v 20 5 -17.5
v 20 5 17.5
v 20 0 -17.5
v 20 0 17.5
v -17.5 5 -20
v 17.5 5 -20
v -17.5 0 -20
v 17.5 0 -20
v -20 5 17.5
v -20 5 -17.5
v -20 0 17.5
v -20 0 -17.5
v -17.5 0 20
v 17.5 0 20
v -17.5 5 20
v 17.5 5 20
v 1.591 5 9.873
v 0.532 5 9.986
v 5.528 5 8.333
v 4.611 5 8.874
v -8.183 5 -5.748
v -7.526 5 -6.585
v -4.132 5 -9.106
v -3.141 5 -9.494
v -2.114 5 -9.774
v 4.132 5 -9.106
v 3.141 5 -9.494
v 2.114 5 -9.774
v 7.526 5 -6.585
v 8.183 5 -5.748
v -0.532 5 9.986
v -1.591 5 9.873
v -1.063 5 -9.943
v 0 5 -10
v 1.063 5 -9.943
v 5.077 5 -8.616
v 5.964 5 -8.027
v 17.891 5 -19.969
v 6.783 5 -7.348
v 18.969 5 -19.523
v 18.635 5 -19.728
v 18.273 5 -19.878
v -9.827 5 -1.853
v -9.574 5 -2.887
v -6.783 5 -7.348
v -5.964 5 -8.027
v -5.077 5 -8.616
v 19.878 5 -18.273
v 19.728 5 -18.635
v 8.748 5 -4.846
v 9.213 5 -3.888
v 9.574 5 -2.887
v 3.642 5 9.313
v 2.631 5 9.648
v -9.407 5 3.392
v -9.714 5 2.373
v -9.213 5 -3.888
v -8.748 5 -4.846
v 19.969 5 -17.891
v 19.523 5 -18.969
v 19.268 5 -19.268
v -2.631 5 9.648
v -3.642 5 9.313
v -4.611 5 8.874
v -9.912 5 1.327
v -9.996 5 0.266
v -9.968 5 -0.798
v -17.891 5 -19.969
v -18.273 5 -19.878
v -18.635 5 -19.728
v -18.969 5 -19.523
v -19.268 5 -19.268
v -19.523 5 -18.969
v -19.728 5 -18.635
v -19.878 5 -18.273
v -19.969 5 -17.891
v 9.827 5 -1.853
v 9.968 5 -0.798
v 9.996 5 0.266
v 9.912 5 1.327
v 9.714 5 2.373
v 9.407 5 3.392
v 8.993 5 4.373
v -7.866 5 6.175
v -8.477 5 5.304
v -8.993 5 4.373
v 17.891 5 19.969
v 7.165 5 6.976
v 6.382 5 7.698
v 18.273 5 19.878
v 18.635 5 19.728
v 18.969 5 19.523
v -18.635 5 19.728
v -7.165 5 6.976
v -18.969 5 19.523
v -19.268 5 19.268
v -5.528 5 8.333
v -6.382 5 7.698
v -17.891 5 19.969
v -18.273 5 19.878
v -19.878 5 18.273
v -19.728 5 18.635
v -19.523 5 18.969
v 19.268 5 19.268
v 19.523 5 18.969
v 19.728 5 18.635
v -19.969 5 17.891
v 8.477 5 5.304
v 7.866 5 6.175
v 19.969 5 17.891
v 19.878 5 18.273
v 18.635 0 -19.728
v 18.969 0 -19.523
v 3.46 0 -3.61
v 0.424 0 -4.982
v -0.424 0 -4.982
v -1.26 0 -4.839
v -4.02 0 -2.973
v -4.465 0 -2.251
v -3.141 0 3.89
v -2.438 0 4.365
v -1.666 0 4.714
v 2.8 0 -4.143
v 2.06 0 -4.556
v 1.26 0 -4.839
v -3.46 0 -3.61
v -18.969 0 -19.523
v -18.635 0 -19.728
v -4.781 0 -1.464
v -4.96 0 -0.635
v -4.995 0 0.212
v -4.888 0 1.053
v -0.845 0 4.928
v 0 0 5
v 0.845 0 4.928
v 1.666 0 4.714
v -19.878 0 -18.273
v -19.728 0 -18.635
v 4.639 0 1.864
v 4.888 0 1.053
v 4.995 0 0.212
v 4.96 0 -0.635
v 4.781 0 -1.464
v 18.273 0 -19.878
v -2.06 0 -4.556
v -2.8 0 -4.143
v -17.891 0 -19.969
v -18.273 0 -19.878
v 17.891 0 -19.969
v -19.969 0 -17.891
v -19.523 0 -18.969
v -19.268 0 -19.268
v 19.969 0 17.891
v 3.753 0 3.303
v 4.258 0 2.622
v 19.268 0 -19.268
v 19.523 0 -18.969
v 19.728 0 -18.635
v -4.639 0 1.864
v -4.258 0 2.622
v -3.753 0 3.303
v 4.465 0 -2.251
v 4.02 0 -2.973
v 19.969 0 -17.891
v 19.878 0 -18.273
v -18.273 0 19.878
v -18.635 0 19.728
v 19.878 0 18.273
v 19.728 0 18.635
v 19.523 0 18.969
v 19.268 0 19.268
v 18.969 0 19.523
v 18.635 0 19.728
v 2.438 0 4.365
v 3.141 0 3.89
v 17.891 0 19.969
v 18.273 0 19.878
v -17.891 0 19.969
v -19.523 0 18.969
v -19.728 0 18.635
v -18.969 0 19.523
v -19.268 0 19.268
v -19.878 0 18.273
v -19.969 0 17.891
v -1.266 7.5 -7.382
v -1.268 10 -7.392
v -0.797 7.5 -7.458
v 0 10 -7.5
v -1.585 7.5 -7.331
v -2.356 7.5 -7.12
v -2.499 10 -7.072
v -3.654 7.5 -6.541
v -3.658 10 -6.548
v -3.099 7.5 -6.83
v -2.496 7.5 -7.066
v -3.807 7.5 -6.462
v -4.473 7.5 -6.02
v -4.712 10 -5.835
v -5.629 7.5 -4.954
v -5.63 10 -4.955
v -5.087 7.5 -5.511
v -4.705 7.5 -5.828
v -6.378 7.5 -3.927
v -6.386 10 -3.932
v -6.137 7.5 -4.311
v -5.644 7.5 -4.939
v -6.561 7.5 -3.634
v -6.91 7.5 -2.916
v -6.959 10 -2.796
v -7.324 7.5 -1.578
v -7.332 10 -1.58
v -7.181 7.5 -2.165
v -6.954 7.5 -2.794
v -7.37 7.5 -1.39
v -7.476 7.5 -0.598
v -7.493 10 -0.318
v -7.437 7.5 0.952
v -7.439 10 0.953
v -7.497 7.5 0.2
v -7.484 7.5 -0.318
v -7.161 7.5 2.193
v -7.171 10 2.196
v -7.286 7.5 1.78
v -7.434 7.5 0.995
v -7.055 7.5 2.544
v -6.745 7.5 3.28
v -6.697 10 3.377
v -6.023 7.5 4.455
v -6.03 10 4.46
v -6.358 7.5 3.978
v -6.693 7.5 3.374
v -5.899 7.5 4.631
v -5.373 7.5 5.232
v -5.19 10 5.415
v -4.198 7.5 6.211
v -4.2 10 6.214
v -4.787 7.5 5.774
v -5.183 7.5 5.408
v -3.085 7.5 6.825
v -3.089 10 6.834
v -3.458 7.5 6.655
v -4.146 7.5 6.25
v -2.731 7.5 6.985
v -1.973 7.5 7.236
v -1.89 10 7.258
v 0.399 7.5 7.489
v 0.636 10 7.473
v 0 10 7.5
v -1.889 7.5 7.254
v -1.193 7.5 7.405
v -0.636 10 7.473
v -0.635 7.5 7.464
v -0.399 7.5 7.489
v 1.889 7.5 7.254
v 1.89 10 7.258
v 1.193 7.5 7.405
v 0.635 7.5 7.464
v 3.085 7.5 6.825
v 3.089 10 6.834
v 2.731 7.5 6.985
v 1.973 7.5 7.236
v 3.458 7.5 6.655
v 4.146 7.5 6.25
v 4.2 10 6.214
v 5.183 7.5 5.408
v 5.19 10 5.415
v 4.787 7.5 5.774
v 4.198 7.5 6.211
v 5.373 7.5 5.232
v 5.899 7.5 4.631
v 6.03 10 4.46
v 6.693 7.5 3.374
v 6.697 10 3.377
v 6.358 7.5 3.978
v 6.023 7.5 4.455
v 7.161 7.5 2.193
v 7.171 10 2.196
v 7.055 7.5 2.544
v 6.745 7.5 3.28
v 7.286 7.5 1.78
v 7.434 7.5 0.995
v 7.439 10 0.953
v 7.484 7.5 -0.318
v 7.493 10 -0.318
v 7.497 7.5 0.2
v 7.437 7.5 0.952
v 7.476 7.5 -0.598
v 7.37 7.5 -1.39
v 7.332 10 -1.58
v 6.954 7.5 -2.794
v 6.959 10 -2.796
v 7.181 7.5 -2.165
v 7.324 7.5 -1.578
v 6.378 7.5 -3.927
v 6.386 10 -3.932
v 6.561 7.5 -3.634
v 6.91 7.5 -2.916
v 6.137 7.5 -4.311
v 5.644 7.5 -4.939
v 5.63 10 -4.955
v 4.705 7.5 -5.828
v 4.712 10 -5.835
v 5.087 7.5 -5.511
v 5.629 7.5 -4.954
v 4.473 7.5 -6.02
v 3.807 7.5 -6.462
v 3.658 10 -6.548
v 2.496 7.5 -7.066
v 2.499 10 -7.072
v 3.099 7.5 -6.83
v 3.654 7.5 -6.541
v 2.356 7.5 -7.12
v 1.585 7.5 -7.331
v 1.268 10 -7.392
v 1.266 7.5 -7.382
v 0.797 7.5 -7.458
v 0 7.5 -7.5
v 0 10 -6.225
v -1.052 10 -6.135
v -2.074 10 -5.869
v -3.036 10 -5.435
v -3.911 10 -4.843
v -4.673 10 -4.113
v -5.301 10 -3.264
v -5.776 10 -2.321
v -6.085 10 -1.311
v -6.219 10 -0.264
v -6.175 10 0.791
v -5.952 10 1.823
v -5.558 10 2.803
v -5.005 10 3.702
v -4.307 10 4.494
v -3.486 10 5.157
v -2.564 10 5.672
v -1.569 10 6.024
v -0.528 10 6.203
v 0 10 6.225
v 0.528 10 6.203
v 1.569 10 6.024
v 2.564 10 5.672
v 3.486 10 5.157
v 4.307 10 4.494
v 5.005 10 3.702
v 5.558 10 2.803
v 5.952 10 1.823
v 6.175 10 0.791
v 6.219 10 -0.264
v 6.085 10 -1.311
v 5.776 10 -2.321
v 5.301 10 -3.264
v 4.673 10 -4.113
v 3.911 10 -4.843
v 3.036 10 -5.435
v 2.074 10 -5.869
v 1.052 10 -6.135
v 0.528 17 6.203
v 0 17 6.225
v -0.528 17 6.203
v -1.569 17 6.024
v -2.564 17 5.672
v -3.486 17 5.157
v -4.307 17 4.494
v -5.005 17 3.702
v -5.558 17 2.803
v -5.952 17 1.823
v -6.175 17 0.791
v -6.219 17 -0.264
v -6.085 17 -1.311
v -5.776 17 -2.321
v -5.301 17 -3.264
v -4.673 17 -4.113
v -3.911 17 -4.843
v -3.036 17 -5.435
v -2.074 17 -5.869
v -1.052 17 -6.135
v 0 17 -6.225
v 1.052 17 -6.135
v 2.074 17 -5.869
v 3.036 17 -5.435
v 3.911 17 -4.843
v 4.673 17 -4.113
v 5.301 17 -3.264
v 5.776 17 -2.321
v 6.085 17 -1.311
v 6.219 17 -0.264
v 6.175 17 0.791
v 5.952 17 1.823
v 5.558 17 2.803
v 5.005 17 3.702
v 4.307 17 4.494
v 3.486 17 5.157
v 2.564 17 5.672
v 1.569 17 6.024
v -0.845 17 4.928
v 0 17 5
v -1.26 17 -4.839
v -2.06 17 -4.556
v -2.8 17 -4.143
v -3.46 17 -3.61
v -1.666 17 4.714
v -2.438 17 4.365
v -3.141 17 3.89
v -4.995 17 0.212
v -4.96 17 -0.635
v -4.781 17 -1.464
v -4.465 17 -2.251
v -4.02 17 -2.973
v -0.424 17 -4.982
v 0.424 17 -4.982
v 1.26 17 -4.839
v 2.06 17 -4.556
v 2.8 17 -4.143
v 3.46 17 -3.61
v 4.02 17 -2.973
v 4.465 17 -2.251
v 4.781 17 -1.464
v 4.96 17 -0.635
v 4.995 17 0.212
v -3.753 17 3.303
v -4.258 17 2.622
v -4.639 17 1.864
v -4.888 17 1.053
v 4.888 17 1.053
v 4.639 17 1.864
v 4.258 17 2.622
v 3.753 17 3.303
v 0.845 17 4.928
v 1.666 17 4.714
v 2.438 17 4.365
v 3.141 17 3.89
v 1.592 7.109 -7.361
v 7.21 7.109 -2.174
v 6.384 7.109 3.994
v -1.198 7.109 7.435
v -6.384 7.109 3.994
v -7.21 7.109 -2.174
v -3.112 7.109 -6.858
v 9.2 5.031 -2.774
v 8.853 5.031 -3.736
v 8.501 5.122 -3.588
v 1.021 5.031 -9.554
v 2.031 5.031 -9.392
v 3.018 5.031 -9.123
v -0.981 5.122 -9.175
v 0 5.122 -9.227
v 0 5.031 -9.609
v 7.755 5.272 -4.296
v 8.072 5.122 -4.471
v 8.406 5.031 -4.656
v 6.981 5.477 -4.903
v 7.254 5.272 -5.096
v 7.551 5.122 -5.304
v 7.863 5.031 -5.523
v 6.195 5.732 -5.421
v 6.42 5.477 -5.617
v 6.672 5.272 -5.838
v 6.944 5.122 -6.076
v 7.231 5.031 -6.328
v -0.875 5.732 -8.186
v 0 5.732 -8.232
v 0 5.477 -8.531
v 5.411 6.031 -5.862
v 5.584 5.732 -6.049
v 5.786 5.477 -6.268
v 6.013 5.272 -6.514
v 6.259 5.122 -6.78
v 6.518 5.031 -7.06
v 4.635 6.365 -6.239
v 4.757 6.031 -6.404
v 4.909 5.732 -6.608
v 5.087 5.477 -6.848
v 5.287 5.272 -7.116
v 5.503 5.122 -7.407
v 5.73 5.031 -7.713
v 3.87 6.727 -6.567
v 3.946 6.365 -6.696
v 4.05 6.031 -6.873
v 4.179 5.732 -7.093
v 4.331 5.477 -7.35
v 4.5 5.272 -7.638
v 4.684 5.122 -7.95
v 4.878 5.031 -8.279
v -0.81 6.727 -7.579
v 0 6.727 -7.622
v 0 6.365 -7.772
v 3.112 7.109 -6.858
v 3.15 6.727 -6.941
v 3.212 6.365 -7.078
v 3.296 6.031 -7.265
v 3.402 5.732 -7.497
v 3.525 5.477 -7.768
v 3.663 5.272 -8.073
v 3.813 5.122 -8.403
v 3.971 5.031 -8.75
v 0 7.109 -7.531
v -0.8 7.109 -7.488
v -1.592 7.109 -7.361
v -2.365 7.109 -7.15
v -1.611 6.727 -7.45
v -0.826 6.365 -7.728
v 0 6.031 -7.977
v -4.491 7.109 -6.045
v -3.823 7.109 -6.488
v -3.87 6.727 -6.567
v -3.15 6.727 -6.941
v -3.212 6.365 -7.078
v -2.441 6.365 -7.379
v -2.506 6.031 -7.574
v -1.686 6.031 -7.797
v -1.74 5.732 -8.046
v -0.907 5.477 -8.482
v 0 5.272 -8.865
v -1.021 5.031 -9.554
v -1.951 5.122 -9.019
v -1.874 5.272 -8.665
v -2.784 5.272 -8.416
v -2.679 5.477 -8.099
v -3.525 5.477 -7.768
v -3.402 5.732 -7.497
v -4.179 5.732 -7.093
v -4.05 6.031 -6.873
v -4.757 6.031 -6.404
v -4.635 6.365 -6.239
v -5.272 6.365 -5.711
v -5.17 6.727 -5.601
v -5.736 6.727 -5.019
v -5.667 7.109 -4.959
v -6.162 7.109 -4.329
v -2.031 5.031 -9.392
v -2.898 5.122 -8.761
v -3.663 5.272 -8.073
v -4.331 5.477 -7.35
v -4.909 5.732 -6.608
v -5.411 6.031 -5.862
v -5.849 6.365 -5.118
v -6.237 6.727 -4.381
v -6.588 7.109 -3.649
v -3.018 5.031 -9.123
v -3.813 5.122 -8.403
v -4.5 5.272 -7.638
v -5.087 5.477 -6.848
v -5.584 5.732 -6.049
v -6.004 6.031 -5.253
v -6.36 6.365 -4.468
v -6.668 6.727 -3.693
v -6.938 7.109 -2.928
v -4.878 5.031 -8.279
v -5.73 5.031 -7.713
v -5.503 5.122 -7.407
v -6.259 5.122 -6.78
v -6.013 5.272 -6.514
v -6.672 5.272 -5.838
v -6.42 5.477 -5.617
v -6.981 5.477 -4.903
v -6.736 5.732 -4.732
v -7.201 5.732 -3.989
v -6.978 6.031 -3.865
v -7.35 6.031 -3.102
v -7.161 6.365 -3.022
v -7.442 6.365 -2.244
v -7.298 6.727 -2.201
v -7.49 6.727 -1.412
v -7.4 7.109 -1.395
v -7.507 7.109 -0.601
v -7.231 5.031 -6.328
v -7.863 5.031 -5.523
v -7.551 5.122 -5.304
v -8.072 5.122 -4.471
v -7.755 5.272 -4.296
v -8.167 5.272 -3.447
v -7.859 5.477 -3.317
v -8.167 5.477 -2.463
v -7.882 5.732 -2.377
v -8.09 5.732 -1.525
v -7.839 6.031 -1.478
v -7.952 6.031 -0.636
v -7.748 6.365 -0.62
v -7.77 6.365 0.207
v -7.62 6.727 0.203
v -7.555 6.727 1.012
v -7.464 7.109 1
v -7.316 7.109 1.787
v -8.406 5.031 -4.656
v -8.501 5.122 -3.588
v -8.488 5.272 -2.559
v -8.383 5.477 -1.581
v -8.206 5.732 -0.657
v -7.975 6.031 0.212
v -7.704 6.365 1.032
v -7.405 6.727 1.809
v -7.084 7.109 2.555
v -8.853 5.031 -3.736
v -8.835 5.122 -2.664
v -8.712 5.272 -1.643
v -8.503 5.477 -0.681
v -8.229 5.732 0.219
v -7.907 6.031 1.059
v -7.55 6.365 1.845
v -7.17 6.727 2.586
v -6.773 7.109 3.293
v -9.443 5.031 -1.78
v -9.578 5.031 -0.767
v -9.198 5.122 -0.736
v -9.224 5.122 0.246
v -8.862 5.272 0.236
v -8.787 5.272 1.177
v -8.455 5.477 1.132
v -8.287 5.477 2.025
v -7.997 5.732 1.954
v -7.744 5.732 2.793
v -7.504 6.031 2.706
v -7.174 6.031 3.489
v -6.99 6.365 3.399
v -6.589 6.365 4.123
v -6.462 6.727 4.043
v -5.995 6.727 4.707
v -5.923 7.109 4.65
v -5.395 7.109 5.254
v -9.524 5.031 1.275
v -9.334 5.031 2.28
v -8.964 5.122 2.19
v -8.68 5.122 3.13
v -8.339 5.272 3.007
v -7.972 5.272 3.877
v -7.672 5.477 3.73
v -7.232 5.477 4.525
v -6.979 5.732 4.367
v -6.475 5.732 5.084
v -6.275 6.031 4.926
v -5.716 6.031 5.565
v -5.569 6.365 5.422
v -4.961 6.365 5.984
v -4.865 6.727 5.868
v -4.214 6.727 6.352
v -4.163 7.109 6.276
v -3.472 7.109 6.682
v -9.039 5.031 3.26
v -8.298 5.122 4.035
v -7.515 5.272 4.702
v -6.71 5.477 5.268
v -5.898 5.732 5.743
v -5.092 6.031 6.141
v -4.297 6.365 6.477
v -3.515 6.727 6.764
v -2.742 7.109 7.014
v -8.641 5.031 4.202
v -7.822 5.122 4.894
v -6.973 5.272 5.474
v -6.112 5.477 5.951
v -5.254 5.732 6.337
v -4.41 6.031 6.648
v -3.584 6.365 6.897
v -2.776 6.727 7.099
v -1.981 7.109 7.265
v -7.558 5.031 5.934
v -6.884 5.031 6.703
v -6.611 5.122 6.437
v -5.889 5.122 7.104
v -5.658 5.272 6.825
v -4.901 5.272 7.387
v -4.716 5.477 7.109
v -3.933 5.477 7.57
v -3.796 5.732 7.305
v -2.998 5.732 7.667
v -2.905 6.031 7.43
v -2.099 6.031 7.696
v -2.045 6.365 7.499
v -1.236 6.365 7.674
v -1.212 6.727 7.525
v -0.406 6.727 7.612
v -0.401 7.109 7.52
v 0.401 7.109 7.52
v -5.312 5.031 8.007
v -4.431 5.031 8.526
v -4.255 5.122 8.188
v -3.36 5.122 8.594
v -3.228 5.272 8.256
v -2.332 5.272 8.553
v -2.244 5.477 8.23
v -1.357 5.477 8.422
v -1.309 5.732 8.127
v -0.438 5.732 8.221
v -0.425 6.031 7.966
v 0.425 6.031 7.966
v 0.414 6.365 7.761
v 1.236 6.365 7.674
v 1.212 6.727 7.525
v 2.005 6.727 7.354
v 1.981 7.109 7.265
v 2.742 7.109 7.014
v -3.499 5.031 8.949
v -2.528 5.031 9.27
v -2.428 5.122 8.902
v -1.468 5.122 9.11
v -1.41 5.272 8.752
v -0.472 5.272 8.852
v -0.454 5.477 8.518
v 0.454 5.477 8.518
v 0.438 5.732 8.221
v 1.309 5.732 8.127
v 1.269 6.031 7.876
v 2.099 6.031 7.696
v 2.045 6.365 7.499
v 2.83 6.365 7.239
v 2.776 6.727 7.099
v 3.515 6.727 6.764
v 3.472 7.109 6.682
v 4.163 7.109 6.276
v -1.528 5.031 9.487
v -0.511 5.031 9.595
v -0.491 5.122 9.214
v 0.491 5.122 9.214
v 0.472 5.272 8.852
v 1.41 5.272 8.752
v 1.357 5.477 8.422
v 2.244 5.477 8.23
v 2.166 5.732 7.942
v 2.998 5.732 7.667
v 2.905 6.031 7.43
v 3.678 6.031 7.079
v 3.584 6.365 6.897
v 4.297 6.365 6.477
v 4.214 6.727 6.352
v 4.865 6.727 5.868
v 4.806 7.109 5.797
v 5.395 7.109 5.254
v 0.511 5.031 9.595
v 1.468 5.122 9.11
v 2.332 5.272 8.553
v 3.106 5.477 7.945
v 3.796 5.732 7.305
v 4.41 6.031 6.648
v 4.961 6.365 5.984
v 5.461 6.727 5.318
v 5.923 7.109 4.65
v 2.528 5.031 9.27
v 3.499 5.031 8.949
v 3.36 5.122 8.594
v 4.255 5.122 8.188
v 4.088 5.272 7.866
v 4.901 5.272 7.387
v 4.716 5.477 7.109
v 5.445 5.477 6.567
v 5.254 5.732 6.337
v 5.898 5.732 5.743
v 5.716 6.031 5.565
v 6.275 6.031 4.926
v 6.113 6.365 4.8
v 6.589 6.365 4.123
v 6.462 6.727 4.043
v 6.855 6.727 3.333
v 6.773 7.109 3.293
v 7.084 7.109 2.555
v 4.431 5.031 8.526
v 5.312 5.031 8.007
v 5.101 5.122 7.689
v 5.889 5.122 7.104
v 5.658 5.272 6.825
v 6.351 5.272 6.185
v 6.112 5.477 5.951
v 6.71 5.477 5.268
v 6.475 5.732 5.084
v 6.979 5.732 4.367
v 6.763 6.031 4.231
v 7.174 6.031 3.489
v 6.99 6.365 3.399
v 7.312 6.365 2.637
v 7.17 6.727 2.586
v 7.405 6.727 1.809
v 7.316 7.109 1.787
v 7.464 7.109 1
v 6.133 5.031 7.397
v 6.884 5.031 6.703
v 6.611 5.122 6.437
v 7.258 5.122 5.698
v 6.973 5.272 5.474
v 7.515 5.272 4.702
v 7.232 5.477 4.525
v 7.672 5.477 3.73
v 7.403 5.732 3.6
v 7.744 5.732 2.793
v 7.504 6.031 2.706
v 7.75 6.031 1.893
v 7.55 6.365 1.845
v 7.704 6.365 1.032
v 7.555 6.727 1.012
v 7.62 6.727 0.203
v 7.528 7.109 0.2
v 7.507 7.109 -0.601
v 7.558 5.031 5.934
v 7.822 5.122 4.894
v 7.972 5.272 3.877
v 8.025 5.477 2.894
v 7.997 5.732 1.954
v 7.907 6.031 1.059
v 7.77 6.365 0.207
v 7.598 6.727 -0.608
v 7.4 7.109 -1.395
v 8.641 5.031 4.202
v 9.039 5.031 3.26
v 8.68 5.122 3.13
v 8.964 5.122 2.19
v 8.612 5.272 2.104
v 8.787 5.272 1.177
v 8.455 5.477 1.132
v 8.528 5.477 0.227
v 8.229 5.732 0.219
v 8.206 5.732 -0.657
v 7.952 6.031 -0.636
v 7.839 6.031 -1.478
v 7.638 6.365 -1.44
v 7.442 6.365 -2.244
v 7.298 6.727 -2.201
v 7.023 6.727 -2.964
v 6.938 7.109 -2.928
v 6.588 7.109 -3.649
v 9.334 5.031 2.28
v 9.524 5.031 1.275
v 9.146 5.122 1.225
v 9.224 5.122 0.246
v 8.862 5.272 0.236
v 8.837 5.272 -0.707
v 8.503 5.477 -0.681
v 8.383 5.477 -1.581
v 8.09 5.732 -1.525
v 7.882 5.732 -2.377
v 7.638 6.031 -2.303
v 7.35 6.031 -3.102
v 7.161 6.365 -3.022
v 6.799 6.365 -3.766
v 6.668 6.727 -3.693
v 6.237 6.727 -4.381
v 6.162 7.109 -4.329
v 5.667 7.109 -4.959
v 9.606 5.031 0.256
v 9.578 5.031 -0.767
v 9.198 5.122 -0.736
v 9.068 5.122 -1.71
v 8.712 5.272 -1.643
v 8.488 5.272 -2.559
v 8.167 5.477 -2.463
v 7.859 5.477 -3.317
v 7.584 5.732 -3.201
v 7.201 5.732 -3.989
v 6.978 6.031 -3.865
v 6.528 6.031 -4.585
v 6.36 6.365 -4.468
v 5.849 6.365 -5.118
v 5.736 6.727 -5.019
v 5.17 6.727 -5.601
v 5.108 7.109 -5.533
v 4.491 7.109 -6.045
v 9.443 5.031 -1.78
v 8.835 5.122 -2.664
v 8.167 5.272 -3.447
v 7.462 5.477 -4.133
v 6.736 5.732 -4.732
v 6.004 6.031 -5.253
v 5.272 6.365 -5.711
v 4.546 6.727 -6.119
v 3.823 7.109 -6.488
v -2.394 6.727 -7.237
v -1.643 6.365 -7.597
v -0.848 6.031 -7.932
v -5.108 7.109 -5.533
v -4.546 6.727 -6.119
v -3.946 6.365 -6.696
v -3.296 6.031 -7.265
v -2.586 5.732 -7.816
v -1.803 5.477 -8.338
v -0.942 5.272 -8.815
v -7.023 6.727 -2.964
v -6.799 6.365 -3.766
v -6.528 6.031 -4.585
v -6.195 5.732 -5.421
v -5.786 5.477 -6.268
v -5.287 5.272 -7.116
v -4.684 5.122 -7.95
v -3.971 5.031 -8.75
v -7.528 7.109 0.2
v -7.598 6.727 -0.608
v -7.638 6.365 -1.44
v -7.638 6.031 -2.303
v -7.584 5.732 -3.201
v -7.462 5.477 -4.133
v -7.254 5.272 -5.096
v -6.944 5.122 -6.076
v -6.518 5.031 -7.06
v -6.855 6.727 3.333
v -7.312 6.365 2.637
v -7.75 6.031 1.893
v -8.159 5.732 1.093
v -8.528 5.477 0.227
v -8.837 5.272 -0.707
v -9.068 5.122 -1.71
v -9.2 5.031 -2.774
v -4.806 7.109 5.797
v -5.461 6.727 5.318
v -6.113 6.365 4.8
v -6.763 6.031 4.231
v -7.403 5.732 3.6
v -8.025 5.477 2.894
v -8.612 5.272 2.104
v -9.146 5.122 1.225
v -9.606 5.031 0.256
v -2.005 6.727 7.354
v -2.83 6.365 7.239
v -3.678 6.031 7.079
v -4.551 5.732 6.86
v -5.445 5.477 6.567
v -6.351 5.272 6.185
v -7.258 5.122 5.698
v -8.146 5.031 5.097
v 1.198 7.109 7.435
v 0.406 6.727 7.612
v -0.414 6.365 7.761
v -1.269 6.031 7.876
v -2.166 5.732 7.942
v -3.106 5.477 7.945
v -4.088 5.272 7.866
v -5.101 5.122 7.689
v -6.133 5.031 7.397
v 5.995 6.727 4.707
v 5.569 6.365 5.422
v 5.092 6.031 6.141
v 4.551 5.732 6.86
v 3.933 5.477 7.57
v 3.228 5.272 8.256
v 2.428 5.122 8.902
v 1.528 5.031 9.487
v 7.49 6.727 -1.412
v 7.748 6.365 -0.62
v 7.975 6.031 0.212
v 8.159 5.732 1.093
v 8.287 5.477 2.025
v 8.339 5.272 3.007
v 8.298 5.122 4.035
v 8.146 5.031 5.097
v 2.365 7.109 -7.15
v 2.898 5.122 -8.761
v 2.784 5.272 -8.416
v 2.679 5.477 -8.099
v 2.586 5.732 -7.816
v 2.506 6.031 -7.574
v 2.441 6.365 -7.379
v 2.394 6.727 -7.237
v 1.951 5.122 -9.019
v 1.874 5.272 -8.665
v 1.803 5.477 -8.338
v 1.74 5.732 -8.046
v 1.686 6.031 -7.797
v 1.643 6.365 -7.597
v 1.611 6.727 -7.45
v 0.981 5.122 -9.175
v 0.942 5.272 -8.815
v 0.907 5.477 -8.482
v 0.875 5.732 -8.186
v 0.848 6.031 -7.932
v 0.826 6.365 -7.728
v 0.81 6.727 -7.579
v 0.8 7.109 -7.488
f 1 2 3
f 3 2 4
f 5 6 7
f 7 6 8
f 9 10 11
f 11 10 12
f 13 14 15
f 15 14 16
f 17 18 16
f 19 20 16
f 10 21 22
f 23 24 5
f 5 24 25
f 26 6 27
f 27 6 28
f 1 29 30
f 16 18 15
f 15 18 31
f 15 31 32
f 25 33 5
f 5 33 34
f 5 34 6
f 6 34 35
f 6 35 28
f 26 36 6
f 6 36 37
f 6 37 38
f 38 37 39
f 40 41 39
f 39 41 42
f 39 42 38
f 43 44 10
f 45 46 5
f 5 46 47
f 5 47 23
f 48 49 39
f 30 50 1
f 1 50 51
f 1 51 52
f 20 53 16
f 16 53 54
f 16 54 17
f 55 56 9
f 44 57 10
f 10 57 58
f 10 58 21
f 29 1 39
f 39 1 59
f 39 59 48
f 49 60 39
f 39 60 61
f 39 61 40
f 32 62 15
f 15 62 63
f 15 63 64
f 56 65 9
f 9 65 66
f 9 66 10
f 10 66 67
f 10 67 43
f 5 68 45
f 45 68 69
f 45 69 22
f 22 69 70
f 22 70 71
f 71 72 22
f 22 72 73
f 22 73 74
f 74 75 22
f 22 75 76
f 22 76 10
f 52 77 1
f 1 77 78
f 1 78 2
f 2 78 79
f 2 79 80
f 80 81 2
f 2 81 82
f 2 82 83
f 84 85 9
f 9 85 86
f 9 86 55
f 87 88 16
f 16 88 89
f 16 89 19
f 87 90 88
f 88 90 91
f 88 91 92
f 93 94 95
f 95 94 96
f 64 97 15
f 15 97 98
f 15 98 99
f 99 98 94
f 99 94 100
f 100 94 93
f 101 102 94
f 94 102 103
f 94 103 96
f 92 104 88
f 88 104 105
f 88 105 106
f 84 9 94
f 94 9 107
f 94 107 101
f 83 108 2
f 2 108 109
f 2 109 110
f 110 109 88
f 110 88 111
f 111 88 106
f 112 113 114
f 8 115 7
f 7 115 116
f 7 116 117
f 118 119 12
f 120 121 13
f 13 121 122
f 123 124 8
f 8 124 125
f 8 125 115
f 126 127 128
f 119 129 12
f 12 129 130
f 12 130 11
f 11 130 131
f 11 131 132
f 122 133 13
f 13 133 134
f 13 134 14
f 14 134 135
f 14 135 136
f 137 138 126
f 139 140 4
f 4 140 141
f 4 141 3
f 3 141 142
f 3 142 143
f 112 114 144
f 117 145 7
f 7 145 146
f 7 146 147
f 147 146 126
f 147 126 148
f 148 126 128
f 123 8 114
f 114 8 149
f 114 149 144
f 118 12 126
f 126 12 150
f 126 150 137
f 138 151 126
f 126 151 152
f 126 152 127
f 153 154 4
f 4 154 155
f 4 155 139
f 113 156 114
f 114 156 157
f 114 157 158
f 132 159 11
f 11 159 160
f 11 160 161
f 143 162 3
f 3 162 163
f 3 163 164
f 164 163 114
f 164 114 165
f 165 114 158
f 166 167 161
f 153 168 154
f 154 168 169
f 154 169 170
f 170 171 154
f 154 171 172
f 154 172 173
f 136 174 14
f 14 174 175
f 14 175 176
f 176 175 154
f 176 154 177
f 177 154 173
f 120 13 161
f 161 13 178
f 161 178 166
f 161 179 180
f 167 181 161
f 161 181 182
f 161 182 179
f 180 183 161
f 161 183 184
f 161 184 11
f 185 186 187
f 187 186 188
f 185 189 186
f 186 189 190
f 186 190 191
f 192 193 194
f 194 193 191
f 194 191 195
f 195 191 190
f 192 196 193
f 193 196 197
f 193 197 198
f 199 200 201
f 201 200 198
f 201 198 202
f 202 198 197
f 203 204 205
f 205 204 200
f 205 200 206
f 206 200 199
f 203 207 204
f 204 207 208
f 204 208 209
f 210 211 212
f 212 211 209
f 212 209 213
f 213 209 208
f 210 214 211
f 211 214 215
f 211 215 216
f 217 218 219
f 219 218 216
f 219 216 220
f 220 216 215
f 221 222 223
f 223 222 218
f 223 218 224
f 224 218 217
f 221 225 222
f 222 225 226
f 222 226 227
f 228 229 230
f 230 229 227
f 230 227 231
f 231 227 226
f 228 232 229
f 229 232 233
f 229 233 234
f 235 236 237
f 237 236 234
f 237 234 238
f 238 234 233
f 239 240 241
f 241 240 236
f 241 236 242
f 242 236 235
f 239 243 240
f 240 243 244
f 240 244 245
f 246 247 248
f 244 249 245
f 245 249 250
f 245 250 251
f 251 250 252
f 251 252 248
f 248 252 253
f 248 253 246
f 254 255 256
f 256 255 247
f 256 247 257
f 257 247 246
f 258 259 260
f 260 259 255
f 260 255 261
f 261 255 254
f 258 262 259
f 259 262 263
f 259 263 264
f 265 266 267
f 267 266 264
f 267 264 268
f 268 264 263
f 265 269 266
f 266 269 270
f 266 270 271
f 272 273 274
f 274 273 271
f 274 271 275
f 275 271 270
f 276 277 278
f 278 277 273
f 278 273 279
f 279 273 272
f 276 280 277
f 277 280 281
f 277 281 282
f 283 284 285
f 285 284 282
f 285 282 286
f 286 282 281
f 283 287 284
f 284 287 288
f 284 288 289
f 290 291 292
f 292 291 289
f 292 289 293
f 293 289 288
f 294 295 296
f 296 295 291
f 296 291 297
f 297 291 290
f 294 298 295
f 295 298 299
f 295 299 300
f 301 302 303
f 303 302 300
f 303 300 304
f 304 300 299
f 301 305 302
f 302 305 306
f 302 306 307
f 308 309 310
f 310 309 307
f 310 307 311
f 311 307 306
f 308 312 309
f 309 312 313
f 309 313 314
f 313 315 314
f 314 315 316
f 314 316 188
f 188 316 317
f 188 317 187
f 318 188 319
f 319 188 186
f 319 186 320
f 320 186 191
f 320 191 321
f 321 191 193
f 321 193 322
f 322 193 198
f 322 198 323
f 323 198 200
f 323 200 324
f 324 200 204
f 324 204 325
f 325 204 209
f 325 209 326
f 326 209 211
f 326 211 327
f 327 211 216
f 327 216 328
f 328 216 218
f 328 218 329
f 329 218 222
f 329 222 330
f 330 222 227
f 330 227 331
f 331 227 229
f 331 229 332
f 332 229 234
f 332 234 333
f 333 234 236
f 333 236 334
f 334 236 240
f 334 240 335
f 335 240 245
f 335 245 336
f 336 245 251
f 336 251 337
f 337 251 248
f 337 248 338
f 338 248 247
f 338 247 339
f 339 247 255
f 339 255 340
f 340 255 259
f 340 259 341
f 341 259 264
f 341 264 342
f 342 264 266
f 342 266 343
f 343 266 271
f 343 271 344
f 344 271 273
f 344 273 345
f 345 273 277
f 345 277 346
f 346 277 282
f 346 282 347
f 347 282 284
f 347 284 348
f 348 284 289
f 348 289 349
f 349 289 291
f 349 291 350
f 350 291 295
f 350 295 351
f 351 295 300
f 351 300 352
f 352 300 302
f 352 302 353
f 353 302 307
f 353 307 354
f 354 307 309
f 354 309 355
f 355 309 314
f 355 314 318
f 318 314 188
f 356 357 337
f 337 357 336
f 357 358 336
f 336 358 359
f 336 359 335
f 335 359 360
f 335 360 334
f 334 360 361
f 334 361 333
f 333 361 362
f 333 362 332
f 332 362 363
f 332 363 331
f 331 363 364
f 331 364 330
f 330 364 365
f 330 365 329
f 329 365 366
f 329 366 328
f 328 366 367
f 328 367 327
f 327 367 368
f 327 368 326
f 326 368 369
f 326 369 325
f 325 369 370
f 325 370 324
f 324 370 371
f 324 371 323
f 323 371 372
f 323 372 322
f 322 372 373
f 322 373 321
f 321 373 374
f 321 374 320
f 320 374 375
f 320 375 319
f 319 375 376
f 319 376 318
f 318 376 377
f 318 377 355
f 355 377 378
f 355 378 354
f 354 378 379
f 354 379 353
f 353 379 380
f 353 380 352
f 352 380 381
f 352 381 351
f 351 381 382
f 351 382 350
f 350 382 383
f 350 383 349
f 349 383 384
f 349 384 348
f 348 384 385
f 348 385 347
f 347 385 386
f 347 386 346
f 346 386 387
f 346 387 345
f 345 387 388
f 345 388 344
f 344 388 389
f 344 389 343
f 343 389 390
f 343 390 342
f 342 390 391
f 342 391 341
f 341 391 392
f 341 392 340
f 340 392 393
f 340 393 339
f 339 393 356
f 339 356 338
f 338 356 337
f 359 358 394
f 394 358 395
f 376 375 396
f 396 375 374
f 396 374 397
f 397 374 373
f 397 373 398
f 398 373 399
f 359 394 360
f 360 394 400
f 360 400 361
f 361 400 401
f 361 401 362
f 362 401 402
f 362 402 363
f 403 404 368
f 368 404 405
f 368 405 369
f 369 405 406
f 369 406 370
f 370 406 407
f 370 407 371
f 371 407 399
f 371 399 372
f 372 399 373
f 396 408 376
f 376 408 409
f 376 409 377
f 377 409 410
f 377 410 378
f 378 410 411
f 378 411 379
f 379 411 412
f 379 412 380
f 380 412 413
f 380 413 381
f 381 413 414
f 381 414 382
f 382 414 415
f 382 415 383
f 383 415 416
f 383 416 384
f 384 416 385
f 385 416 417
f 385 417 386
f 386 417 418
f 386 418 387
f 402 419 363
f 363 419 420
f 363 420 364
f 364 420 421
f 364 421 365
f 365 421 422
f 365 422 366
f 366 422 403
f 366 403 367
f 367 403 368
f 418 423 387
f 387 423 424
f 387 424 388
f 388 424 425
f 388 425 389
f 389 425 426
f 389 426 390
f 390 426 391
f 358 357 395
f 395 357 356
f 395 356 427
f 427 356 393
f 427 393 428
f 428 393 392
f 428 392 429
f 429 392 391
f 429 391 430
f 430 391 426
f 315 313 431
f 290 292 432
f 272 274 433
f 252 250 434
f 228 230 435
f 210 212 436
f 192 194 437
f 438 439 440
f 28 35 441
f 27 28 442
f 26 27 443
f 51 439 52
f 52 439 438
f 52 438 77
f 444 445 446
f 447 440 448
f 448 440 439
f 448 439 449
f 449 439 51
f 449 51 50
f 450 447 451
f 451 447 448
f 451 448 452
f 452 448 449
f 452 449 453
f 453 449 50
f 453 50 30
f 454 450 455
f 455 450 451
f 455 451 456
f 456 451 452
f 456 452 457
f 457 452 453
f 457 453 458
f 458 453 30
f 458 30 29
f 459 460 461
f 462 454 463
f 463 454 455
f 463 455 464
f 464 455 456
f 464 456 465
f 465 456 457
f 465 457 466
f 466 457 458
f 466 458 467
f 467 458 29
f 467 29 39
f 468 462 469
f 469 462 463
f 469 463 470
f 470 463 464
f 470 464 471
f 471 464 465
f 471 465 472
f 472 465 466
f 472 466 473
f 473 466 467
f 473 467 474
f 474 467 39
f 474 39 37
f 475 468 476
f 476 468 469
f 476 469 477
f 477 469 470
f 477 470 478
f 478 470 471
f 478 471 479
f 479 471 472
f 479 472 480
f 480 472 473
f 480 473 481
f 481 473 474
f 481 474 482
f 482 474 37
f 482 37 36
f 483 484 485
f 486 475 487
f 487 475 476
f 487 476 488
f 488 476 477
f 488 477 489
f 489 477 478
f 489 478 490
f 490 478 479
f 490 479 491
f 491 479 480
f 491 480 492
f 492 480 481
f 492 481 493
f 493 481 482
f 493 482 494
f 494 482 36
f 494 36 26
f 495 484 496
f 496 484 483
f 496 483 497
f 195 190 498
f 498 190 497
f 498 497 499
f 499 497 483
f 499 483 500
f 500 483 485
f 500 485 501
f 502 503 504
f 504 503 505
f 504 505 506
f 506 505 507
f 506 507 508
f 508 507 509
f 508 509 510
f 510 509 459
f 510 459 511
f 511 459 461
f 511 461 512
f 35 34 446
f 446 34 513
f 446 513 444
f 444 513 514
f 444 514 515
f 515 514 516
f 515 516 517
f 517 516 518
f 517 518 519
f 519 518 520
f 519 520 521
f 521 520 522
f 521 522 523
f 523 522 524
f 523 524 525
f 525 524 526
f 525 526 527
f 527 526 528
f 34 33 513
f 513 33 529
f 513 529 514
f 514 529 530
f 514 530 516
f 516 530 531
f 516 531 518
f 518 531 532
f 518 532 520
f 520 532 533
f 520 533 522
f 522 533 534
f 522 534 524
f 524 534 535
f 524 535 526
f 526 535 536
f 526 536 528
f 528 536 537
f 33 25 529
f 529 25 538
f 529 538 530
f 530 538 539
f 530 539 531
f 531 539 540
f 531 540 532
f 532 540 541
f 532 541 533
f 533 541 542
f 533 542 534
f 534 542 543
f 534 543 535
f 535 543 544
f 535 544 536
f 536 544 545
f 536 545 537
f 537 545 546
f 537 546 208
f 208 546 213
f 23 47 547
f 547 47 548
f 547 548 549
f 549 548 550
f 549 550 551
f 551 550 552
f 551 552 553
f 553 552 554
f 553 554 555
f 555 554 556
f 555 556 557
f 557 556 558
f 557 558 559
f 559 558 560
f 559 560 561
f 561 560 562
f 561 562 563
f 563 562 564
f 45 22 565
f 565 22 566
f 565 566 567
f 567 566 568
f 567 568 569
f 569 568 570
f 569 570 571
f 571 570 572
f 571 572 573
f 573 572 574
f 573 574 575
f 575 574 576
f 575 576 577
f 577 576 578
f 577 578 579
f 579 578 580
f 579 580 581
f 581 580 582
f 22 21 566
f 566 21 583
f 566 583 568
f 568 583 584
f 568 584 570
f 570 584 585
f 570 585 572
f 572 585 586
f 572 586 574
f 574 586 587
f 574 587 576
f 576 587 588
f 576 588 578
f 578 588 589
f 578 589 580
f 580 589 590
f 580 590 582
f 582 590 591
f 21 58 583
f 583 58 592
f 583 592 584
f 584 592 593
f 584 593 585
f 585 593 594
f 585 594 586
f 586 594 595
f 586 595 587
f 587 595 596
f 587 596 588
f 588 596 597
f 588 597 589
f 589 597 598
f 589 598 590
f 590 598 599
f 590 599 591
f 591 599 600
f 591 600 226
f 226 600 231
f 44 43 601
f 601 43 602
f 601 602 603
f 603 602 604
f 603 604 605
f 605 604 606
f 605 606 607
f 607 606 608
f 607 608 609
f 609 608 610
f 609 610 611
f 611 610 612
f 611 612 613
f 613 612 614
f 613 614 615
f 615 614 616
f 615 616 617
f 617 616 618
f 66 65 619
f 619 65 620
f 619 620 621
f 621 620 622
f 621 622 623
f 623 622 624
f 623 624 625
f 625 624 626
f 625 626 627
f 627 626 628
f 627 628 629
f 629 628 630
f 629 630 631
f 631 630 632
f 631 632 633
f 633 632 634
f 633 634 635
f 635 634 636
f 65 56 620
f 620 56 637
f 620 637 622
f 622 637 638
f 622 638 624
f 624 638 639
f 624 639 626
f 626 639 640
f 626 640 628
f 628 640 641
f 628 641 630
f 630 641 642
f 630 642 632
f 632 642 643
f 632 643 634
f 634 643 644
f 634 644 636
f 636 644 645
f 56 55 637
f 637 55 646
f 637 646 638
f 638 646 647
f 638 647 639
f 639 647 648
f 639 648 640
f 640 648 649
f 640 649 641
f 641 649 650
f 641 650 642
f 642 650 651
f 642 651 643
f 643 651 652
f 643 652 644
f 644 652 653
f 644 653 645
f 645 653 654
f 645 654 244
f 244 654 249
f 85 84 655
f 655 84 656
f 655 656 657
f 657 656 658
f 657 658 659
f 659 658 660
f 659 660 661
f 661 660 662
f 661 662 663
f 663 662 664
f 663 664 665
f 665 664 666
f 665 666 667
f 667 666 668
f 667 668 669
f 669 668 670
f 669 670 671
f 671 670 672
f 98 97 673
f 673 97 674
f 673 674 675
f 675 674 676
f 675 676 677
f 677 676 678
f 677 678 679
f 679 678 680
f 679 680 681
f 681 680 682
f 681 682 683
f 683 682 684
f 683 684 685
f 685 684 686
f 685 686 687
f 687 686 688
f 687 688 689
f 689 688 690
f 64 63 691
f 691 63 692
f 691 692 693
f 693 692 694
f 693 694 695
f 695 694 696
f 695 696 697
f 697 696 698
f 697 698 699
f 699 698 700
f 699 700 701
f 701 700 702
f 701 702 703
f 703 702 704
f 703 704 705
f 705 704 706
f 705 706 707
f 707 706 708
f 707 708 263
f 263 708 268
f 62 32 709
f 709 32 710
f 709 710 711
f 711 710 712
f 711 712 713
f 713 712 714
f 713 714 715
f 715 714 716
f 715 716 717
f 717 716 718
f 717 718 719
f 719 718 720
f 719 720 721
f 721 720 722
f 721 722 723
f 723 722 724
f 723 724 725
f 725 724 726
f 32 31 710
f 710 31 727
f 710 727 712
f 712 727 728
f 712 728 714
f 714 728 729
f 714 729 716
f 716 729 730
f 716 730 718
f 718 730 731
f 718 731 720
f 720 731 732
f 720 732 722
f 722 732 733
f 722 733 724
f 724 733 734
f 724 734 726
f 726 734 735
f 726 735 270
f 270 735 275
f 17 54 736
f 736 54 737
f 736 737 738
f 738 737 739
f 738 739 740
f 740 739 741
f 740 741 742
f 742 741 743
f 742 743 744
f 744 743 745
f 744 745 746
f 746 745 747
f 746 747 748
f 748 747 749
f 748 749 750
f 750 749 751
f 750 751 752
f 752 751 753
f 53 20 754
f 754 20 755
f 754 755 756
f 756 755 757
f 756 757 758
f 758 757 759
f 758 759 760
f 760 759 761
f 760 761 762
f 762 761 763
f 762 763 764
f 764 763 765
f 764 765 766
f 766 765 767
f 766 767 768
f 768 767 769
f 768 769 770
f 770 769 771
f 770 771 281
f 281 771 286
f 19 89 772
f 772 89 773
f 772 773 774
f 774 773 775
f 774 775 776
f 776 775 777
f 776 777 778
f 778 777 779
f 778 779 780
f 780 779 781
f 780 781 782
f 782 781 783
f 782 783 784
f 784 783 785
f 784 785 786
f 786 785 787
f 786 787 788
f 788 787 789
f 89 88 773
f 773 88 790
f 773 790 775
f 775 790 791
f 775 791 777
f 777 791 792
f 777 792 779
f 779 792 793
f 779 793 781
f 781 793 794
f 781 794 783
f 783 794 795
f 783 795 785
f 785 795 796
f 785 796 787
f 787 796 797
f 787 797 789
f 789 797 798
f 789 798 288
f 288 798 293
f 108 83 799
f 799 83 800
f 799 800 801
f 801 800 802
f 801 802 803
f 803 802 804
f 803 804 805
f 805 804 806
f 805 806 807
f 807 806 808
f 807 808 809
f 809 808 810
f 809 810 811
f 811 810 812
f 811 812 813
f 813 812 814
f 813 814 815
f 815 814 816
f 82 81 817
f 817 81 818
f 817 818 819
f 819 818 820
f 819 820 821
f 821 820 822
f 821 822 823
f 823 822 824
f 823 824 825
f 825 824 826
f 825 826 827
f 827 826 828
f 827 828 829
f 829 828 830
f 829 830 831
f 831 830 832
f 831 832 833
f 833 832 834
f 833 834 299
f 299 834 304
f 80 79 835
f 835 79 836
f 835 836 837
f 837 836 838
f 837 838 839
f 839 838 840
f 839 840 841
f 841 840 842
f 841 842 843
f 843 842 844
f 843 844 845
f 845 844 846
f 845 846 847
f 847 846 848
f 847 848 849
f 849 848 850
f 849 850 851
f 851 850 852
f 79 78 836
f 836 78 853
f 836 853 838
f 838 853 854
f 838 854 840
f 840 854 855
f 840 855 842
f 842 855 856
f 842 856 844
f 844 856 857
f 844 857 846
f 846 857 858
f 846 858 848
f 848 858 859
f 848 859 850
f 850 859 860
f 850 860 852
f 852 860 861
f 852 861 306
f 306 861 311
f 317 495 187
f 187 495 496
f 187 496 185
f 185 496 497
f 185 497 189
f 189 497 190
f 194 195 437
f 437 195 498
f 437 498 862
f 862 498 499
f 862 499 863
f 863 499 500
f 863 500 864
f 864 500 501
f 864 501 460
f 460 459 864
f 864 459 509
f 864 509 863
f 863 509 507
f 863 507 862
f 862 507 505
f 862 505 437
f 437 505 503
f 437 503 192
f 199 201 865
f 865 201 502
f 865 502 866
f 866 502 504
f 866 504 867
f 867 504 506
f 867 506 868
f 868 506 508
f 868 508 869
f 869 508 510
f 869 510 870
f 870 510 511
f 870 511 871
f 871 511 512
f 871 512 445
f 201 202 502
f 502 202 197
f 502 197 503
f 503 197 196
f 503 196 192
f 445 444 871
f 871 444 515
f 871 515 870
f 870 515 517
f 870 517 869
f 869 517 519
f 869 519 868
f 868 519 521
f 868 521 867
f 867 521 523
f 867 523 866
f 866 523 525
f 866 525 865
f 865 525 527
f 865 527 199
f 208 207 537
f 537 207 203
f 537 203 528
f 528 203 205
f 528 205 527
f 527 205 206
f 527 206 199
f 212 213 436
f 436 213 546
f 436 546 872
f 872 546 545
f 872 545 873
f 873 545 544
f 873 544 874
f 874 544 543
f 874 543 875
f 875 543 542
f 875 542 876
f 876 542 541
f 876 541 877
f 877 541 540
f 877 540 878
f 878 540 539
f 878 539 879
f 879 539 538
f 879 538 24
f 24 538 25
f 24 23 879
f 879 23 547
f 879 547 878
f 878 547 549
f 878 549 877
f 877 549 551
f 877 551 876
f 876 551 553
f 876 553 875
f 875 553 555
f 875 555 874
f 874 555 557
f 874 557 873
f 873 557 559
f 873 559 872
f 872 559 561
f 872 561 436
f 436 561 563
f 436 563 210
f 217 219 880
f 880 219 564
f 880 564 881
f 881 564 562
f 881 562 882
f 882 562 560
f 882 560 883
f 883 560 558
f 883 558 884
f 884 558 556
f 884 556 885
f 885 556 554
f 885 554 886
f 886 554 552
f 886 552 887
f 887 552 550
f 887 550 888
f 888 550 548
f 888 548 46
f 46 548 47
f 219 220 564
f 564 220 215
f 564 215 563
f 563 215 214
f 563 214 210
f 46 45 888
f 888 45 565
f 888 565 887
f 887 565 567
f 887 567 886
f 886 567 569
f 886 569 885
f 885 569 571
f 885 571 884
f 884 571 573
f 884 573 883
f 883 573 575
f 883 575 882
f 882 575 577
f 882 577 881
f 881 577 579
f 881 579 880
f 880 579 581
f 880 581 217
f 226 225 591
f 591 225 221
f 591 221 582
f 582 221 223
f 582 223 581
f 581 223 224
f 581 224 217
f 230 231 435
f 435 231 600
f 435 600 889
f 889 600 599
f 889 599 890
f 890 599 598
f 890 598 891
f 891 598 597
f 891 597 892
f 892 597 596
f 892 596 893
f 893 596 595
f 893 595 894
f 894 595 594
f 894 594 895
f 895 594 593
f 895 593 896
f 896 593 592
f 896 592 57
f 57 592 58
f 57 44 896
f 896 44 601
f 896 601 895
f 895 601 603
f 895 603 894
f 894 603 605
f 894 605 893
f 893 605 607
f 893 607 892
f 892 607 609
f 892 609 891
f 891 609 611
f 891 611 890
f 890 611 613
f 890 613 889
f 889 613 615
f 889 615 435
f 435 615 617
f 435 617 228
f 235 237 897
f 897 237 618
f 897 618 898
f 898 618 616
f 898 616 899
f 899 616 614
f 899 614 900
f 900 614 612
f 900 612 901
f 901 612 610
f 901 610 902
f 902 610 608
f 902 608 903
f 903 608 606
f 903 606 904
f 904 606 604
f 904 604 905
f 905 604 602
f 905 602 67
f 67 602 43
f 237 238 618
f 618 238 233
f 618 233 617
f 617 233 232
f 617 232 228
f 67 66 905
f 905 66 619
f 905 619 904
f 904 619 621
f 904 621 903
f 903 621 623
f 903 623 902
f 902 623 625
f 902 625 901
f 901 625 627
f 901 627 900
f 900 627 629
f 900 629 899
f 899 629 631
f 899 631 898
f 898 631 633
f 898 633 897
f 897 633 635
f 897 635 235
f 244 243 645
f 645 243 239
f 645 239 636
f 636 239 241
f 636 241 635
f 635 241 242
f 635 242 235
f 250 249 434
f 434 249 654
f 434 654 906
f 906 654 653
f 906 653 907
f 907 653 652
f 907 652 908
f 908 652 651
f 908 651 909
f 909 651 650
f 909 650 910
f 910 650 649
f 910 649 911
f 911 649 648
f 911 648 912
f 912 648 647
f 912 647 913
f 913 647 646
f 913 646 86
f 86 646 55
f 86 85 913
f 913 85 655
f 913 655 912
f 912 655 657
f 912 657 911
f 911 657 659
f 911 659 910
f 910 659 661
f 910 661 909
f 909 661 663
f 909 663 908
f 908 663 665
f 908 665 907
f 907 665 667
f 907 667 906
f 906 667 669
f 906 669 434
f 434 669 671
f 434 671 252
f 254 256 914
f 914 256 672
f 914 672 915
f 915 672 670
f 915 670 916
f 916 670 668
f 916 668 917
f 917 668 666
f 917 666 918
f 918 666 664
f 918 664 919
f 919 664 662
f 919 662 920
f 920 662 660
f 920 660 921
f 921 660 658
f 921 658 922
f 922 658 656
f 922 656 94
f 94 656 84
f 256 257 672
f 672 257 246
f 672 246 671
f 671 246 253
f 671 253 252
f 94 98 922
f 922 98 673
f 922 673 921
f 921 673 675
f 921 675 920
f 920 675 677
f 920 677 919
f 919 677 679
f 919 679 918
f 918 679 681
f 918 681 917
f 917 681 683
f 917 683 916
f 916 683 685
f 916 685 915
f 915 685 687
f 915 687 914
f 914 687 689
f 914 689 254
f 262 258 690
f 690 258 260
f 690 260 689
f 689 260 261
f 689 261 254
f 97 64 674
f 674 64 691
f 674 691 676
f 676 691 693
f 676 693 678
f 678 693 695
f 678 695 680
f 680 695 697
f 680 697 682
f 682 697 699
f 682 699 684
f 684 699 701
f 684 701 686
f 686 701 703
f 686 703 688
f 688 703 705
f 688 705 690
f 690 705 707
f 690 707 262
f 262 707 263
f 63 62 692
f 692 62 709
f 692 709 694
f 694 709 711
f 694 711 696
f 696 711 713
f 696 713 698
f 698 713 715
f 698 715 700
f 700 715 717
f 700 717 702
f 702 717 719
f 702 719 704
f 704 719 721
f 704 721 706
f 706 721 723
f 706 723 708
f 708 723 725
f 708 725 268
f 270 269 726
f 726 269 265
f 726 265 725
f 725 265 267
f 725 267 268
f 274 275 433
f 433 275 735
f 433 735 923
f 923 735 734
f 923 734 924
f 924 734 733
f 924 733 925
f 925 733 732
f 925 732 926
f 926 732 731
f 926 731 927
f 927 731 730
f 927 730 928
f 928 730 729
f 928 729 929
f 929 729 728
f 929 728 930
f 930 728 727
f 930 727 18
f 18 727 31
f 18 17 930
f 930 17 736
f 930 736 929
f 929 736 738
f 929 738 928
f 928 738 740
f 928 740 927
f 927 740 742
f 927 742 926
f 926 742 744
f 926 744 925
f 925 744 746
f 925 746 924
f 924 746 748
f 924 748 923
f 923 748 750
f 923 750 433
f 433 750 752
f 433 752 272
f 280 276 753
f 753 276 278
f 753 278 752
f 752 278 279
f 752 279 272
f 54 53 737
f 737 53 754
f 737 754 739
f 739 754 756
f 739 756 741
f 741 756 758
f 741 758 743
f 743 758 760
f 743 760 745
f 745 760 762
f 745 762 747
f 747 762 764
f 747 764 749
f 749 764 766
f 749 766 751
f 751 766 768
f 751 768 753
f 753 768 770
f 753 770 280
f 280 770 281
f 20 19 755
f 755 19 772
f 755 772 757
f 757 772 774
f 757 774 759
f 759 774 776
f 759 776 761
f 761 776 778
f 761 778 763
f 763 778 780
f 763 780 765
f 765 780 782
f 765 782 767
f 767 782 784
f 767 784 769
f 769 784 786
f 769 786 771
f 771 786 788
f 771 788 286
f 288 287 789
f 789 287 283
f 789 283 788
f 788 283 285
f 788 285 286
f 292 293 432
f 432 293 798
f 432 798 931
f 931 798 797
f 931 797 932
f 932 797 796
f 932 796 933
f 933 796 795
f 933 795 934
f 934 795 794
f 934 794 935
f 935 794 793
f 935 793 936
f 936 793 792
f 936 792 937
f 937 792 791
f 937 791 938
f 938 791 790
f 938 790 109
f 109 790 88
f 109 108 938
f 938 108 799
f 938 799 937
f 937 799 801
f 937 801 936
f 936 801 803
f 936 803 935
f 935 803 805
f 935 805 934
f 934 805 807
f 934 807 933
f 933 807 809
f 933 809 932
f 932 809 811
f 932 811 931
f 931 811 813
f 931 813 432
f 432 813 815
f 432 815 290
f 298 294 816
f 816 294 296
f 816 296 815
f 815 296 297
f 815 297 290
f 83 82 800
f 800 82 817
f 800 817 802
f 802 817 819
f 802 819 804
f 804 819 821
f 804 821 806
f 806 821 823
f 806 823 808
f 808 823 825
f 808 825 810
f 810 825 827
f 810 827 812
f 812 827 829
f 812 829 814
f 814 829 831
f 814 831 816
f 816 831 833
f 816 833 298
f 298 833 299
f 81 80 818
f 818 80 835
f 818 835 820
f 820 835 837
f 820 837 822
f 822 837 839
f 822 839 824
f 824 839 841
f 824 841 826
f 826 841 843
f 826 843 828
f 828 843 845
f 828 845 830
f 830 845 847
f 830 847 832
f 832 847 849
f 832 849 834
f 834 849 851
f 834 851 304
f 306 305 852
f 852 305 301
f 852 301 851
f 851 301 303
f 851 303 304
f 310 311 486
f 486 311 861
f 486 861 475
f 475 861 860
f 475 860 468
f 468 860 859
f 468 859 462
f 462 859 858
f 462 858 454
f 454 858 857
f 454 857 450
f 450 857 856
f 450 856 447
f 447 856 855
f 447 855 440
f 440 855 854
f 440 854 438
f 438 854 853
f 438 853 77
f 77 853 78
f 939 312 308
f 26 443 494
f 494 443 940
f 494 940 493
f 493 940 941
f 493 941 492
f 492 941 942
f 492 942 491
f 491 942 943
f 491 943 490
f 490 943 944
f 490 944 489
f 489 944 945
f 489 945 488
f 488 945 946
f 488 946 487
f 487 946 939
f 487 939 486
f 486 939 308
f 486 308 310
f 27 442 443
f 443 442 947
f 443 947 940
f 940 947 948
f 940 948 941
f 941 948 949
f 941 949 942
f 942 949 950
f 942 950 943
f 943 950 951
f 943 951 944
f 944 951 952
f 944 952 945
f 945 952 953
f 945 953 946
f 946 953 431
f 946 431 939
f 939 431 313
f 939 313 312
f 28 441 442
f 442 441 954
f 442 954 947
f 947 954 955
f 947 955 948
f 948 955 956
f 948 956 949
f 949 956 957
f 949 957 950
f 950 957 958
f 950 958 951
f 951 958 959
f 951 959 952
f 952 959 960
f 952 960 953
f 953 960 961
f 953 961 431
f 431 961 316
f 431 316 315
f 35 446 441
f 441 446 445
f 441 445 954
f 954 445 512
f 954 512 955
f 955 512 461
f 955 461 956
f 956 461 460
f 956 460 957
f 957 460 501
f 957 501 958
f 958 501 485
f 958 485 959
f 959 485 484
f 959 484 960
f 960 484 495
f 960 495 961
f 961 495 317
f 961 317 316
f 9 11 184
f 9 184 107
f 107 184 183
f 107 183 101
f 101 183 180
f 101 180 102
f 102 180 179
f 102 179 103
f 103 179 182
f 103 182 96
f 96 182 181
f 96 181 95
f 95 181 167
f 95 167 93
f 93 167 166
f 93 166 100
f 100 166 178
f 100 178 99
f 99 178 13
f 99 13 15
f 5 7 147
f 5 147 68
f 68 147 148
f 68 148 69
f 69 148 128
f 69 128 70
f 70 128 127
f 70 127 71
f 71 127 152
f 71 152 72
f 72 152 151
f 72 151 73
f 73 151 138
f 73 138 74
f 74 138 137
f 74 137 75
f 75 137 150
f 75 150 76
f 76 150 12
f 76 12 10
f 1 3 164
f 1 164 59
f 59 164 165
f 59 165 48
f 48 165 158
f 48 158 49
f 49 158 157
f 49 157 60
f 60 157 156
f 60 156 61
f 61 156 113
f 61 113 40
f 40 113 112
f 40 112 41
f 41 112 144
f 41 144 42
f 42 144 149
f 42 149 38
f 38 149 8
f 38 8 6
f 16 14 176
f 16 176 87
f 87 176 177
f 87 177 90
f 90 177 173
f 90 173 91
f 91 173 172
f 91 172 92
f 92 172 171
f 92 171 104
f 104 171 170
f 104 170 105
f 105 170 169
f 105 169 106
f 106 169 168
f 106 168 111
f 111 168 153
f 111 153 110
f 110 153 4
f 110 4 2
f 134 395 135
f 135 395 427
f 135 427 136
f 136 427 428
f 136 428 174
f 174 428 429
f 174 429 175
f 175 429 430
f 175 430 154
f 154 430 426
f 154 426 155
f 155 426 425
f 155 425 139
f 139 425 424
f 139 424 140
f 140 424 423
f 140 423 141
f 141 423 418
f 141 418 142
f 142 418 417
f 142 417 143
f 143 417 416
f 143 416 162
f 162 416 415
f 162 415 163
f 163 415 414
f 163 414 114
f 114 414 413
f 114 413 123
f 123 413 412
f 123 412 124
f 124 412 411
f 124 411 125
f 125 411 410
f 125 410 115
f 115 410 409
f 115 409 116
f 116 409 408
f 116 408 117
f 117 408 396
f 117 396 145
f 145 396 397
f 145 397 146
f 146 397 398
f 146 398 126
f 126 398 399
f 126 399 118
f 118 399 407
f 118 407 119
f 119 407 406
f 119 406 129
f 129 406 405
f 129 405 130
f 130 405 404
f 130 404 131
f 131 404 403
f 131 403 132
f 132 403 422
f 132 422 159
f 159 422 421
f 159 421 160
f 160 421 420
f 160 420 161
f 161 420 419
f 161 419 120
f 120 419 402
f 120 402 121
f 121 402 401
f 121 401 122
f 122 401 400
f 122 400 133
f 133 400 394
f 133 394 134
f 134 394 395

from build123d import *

# Parameters (mm, degrees)
SKETCH1_W           = 40
SKETCH1_H           = 40
BOSS_EXTRUDE1_DEPTH = 5
SKETCH2_R           = 7.5
BOSS_EXTRUDE2_DEPTH = 5
SKETCH4_R           = 6.225
BOSS_EXTRUDE3_DEPTH = 7
FILLET1_R           = 2.5
SKETCH5_R           = 5
CUT_EXTRUDE1_DEPTH  = 17


with BuildPart() as part:
    # Sketch1 → Boss-Extrude1 (new body)
    with BuildSketch(Plane(origin=(0, 0, 0), x_dir=(1, 0, 0), z_dir=(0, 1, 0))):
        Rectangle(SKETCH1_W, SKETCH1_H)
    extrude(amount=BOSS_EXTRUDE1_DEPTH)

    # Sketch2 → Boss-Extrude2 (add)
    with BuildSketch(Plane(origin=(0, 5, 0), x_dir=(1, 0, 0), z_dir=(0, 1, 0))):
        with Locations(Location((0, 0, 0), (0, 0, 270))):
            Circle(SKETCH2_R)
    extrude(amount=BOSS_EXTRUDE2_DEPTH)

    # Sketch4 → Boss-Extrude3 (add)
    with BuildSketch(Plane(origin=(0, 10, 0), x_dir=(1, 0, 0), z_dir=(0, 1, 0))):
        with Locations(Location((0, 0, 0), (0, 0, 270))):
            Circle(SKETCH4_R)
    extrude(amount=BOSS_EXTRUDE3_DEPTH)

    # Fillet1
    fillet1_edges = [part.edges().sort_by_distance(p)[0] for p in [
        (0, 5, -7.5),
        (20, 2.5, 20),
        (-20, 2.5, 20),
        (-20, 2.5, -20),
        (20, 2.5, -20),
    ]]
    fillet(fillet1_edges, radius=FILLET1_R)

    # Sketch5 → Cut-Extrude1 (cut)
    with BuildSketch(Plane(origin=(0, 17, 0), x_dir=(1, 0, 0), z_dir=(0, 1, 0))):
        with Locations(Location((0, 0, 0), (0, 0, 270))):
            Circle(SKETCH5_R)
    extrude(amount=-CUT_EXTRUDE1_DEPTH, mode=Mode.SUBTRACT)


solid = part.part
